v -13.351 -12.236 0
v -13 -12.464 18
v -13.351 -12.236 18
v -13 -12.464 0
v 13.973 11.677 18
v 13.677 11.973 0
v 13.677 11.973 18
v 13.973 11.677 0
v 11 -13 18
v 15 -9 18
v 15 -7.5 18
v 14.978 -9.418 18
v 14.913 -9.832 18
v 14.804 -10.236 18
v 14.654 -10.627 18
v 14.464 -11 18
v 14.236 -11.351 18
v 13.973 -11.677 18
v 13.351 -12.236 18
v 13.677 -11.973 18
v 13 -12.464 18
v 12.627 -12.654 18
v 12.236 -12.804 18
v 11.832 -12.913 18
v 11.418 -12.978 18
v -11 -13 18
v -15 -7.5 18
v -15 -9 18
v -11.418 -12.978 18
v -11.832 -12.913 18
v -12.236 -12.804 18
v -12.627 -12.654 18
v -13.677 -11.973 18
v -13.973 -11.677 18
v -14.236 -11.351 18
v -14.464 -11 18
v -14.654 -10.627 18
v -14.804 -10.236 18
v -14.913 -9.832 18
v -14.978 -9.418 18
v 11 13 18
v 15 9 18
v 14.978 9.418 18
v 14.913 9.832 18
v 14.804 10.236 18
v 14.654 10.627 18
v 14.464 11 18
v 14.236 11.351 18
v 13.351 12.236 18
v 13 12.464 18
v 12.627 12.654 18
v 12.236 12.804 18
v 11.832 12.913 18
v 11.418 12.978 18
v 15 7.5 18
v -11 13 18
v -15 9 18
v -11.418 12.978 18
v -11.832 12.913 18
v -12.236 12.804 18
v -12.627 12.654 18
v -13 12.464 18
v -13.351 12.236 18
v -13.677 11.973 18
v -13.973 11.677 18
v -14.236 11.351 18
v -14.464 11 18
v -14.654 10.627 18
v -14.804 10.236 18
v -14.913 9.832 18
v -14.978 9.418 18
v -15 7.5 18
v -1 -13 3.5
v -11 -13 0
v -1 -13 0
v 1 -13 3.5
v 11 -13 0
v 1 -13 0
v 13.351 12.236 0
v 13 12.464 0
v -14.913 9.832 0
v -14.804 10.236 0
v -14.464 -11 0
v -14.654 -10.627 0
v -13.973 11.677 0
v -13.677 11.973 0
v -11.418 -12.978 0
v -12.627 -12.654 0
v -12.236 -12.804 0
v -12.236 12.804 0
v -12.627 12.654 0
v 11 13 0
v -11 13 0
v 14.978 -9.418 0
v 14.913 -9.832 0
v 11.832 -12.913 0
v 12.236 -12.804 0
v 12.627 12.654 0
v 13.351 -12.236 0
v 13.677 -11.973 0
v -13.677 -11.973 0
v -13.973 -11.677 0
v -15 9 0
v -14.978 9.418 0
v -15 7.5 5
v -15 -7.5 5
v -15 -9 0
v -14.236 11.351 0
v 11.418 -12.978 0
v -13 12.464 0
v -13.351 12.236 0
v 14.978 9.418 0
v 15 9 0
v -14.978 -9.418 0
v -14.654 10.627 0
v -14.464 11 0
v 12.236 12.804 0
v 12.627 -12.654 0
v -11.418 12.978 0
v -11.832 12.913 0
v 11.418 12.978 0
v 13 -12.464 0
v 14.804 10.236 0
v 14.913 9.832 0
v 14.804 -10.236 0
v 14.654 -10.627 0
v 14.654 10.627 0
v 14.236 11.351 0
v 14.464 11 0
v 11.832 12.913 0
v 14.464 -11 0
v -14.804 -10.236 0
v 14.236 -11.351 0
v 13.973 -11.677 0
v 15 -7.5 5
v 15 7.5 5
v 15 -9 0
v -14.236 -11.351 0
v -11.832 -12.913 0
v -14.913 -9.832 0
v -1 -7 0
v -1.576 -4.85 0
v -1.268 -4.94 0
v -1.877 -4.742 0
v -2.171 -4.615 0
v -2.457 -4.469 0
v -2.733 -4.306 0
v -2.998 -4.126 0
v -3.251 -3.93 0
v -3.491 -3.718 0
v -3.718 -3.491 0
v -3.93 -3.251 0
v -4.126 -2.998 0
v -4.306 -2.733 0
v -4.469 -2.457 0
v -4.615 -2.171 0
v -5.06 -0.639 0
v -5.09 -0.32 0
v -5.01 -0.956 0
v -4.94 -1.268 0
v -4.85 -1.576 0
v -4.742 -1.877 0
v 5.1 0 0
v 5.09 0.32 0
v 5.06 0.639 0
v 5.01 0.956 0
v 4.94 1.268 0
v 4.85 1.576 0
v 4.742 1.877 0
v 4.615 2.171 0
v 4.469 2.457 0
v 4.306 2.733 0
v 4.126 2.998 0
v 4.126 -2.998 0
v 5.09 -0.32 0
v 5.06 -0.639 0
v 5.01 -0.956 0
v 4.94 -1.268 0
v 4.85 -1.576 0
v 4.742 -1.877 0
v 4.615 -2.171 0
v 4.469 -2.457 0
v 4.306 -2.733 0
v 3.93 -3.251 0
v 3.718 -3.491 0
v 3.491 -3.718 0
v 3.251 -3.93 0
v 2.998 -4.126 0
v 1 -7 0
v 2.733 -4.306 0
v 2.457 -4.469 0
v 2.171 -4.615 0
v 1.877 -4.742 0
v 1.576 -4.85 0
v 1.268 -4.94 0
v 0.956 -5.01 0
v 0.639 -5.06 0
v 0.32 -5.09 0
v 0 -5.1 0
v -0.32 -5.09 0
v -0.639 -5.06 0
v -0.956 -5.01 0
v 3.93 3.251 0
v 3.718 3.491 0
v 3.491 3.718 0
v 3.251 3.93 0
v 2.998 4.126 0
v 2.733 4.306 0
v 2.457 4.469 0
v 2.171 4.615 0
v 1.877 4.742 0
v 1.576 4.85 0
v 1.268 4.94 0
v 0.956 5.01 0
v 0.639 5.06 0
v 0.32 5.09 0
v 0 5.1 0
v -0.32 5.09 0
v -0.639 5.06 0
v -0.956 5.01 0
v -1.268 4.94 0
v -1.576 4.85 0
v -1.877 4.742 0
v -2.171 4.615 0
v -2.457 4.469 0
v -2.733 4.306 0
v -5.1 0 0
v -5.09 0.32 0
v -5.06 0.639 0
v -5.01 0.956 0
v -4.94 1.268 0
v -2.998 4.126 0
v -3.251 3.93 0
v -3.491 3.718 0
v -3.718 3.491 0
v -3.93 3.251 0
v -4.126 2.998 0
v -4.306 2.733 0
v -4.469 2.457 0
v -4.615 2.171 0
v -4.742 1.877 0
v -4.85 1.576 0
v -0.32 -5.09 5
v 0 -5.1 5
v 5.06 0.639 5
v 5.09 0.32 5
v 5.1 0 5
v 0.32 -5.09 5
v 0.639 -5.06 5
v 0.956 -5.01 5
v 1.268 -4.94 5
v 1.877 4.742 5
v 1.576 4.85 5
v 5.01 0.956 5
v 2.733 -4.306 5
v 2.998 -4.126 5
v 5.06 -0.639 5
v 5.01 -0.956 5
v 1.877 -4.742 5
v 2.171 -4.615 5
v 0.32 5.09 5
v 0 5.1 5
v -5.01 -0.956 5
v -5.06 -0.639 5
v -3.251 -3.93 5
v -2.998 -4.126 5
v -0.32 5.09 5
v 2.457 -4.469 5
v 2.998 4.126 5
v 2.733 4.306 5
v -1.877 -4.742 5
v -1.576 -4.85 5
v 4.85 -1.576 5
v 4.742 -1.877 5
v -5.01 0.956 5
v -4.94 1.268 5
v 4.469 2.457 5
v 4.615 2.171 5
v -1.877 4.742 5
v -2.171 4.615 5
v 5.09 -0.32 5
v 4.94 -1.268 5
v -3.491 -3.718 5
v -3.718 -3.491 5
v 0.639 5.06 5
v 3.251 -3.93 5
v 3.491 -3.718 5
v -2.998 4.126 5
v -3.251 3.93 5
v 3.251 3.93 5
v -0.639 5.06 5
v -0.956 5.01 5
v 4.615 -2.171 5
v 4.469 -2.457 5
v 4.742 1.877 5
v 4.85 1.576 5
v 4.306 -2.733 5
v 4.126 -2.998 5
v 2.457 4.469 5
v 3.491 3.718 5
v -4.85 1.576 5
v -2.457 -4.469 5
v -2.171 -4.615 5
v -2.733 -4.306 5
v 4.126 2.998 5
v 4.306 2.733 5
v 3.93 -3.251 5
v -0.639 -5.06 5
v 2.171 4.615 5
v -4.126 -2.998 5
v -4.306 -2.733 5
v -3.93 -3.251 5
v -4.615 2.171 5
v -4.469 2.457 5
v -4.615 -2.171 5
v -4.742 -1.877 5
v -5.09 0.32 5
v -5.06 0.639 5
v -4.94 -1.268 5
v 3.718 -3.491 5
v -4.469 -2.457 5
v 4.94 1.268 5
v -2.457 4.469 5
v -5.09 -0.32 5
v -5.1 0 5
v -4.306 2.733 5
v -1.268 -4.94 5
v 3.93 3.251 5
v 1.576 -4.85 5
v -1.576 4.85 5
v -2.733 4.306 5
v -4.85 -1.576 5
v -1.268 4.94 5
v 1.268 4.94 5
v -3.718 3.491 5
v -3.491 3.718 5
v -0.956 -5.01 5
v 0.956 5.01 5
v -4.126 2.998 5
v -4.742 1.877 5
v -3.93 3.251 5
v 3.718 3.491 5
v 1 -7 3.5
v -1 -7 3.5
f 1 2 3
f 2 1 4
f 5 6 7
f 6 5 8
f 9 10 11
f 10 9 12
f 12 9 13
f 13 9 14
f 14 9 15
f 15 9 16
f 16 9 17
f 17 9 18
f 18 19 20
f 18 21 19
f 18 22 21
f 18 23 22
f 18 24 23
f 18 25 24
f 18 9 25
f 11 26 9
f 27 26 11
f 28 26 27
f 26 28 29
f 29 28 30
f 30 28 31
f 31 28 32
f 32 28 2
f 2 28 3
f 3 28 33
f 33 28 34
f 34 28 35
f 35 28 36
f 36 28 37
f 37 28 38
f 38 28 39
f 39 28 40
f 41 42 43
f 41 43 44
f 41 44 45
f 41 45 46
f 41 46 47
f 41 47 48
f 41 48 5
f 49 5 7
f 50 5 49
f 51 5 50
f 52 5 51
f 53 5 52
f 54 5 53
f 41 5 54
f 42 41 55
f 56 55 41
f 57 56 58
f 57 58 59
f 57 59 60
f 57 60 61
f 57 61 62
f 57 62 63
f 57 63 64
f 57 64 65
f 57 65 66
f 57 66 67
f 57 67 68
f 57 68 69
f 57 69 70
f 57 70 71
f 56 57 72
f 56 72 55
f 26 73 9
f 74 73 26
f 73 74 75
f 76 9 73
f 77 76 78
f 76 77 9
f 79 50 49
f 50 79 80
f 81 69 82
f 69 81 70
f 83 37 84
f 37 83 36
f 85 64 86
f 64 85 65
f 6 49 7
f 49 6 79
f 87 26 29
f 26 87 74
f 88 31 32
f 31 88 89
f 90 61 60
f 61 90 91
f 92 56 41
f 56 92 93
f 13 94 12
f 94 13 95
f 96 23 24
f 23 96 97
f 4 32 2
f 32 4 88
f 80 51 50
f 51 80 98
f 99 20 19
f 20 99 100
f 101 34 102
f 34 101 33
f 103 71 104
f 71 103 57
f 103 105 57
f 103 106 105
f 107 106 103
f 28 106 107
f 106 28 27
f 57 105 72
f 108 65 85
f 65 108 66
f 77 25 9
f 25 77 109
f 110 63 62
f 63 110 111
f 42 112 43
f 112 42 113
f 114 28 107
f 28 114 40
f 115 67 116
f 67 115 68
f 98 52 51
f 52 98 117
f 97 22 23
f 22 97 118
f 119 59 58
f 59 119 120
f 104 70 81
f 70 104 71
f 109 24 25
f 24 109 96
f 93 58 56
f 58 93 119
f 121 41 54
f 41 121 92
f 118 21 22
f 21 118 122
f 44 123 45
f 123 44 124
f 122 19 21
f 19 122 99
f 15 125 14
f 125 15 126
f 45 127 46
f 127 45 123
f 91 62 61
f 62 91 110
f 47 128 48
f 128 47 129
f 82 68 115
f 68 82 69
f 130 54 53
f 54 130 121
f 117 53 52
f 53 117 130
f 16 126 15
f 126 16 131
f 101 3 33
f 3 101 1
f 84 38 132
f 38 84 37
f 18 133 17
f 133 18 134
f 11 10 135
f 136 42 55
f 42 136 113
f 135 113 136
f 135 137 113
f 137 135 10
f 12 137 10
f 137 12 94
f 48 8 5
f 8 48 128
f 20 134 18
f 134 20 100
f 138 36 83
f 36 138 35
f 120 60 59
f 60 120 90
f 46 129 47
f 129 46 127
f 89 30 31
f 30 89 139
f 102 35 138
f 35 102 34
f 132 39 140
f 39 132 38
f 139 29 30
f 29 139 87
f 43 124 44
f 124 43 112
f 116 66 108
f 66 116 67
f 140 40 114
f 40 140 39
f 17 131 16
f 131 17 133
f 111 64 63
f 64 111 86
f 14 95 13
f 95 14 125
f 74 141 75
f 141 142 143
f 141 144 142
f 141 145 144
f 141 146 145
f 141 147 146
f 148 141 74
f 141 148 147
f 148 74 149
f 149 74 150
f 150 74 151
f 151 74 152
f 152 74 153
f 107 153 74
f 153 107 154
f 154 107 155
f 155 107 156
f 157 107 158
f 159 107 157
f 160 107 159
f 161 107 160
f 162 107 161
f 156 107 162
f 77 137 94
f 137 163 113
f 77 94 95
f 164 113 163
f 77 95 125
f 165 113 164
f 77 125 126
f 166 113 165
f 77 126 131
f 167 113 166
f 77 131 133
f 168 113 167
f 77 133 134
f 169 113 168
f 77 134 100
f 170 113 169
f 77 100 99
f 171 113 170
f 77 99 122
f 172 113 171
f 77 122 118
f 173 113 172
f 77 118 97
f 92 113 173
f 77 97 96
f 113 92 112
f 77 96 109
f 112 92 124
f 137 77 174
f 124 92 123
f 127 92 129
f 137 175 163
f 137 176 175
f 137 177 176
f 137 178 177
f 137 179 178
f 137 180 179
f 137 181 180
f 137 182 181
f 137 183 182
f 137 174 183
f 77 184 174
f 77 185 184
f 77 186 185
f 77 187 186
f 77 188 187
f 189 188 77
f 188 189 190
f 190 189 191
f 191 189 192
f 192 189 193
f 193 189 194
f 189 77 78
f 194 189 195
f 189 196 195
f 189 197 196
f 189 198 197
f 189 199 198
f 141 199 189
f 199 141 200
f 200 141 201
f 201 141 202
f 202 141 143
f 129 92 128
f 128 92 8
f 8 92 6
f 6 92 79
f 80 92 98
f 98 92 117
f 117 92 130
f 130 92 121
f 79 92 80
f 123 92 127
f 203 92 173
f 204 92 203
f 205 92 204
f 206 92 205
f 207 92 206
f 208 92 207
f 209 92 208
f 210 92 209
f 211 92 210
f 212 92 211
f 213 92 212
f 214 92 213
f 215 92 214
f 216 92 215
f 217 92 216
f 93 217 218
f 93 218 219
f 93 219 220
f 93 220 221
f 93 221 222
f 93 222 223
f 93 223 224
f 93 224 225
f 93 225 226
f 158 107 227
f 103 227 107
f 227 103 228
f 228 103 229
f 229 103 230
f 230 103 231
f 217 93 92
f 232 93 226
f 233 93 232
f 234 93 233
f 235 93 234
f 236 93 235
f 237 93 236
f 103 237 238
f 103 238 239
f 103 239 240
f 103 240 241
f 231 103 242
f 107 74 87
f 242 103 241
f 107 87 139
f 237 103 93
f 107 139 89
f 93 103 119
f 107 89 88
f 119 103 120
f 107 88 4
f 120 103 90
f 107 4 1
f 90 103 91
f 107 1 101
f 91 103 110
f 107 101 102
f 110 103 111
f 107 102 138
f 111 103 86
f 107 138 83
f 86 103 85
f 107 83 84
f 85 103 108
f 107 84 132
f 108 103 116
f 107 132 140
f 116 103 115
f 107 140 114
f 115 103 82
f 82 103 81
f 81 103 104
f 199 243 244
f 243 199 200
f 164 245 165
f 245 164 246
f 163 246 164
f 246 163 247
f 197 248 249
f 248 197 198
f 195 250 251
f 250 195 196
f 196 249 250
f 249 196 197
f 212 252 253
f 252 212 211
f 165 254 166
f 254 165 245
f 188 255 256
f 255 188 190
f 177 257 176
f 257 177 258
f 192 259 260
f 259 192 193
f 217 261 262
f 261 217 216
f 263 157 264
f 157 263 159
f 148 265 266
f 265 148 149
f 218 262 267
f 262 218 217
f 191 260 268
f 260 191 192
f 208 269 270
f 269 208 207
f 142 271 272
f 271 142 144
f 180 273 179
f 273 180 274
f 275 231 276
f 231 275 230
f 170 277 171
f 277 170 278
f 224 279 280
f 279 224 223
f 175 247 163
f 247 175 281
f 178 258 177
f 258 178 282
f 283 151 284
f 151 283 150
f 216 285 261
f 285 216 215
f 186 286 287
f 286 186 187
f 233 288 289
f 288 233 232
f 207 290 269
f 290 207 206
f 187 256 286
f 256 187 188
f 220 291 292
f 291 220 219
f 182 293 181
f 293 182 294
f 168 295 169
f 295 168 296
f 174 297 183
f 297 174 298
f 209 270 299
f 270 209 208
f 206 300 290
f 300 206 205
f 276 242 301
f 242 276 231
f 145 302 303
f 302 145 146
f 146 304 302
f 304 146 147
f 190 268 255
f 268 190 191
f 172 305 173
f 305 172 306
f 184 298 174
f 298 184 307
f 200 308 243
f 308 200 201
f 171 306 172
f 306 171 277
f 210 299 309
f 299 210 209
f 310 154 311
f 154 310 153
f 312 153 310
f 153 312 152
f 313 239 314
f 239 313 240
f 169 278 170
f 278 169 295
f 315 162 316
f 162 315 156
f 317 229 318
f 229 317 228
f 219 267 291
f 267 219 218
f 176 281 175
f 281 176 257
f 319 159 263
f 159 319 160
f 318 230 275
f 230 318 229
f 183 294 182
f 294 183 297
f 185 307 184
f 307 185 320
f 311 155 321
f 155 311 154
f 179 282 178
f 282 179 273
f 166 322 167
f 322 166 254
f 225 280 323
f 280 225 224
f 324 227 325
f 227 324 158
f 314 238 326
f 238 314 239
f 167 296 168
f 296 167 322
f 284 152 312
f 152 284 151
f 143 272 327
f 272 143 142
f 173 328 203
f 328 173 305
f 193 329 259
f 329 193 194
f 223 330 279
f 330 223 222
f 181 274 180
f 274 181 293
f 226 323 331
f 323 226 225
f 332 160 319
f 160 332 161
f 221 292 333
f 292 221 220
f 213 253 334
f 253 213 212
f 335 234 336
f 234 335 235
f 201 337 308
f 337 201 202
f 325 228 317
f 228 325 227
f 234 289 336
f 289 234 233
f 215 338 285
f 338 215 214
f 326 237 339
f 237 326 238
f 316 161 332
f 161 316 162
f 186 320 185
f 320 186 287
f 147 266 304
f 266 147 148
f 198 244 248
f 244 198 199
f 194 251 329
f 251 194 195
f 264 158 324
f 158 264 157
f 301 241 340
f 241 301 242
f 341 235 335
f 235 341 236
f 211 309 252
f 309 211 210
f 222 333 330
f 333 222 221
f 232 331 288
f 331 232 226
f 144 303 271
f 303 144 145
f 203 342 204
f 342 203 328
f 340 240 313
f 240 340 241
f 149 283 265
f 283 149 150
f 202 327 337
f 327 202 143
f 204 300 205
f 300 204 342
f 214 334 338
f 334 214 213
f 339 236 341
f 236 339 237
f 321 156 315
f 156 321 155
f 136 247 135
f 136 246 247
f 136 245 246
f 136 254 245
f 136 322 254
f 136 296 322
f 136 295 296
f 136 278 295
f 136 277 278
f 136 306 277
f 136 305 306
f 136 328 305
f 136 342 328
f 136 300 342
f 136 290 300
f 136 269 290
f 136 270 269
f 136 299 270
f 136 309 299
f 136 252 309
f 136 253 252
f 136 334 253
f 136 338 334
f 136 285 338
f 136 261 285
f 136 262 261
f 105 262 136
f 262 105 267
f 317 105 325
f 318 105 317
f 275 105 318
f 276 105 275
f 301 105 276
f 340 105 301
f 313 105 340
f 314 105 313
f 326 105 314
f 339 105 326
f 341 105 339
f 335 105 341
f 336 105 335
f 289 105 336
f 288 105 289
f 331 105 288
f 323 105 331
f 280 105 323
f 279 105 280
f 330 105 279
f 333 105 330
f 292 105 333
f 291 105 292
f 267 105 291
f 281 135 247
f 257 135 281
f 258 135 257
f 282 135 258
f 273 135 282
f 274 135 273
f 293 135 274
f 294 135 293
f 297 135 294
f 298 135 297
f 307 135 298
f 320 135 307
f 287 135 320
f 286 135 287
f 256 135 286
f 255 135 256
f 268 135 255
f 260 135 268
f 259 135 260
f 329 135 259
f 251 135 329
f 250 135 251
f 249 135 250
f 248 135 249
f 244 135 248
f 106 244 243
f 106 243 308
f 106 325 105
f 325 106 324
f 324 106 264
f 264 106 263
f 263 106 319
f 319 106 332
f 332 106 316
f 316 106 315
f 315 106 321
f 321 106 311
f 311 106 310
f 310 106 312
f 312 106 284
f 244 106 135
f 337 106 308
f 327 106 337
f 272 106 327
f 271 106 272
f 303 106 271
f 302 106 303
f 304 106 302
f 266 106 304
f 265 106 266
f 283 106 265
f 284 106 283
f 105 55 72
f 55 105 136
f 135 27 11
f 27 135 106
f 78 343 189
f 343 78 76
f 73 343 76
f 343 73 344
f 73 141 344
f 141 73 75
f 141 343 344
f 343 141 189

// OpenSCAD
// V52.1-Right Pacer
// Optimized for 10mm x 3mm LRA 
// Use PETG for flexibility in the clips

module v52_1_right() {
    difference() {
        // 1. MAIN BODY - Rounded Ergo Shape
        hull() {
            translate([-11, -9, 0])  cylinder(r=4, h=18, $fn=60);
            translate([11, -9, 0])   cylinder(r=4, h=18, $fn=60);
            translate([-11, 9, 0])   cylinder(r=4, h=18, $fn=60);
            translate([11, 9, 0])    cylinder(r=4, h=18, $fn=60);
        }

        // 2. THE MOTOR OPENING (Skin-Side)
        // This MUST be an open hole. 10.2mm diameter.
        // We cut slightly deeper (-1 to 7) to ensure it clears the bottom.
        translate([0, 0, -1]) 
            cylinder(d=10.2, h=8, $fn=100);

        // 3. THE BATTERY POD SLOT (Internal Clip)
        // This is the hollow space the headphone battery slides into.
        translate([-15, -7.5, 5]) 
            cube([30, 15, 14]); 

        // 4. WIRE TRENCH
        // For the AWG 30 leads.
        translate([0, -12, 1.5]) 
            cube([2, 10, 4], center=true);

        // 5. EMBOSSED "R" 
        // Subtracted 2mm deep for high tactile visibility.
        translate([0, 0, 16.5]) 
            linear_extrude(height = 3) 
                text("R", size=9, font="Arial:style=Bold", halign="center", valign="center");
    }
}

v52_1_right();
